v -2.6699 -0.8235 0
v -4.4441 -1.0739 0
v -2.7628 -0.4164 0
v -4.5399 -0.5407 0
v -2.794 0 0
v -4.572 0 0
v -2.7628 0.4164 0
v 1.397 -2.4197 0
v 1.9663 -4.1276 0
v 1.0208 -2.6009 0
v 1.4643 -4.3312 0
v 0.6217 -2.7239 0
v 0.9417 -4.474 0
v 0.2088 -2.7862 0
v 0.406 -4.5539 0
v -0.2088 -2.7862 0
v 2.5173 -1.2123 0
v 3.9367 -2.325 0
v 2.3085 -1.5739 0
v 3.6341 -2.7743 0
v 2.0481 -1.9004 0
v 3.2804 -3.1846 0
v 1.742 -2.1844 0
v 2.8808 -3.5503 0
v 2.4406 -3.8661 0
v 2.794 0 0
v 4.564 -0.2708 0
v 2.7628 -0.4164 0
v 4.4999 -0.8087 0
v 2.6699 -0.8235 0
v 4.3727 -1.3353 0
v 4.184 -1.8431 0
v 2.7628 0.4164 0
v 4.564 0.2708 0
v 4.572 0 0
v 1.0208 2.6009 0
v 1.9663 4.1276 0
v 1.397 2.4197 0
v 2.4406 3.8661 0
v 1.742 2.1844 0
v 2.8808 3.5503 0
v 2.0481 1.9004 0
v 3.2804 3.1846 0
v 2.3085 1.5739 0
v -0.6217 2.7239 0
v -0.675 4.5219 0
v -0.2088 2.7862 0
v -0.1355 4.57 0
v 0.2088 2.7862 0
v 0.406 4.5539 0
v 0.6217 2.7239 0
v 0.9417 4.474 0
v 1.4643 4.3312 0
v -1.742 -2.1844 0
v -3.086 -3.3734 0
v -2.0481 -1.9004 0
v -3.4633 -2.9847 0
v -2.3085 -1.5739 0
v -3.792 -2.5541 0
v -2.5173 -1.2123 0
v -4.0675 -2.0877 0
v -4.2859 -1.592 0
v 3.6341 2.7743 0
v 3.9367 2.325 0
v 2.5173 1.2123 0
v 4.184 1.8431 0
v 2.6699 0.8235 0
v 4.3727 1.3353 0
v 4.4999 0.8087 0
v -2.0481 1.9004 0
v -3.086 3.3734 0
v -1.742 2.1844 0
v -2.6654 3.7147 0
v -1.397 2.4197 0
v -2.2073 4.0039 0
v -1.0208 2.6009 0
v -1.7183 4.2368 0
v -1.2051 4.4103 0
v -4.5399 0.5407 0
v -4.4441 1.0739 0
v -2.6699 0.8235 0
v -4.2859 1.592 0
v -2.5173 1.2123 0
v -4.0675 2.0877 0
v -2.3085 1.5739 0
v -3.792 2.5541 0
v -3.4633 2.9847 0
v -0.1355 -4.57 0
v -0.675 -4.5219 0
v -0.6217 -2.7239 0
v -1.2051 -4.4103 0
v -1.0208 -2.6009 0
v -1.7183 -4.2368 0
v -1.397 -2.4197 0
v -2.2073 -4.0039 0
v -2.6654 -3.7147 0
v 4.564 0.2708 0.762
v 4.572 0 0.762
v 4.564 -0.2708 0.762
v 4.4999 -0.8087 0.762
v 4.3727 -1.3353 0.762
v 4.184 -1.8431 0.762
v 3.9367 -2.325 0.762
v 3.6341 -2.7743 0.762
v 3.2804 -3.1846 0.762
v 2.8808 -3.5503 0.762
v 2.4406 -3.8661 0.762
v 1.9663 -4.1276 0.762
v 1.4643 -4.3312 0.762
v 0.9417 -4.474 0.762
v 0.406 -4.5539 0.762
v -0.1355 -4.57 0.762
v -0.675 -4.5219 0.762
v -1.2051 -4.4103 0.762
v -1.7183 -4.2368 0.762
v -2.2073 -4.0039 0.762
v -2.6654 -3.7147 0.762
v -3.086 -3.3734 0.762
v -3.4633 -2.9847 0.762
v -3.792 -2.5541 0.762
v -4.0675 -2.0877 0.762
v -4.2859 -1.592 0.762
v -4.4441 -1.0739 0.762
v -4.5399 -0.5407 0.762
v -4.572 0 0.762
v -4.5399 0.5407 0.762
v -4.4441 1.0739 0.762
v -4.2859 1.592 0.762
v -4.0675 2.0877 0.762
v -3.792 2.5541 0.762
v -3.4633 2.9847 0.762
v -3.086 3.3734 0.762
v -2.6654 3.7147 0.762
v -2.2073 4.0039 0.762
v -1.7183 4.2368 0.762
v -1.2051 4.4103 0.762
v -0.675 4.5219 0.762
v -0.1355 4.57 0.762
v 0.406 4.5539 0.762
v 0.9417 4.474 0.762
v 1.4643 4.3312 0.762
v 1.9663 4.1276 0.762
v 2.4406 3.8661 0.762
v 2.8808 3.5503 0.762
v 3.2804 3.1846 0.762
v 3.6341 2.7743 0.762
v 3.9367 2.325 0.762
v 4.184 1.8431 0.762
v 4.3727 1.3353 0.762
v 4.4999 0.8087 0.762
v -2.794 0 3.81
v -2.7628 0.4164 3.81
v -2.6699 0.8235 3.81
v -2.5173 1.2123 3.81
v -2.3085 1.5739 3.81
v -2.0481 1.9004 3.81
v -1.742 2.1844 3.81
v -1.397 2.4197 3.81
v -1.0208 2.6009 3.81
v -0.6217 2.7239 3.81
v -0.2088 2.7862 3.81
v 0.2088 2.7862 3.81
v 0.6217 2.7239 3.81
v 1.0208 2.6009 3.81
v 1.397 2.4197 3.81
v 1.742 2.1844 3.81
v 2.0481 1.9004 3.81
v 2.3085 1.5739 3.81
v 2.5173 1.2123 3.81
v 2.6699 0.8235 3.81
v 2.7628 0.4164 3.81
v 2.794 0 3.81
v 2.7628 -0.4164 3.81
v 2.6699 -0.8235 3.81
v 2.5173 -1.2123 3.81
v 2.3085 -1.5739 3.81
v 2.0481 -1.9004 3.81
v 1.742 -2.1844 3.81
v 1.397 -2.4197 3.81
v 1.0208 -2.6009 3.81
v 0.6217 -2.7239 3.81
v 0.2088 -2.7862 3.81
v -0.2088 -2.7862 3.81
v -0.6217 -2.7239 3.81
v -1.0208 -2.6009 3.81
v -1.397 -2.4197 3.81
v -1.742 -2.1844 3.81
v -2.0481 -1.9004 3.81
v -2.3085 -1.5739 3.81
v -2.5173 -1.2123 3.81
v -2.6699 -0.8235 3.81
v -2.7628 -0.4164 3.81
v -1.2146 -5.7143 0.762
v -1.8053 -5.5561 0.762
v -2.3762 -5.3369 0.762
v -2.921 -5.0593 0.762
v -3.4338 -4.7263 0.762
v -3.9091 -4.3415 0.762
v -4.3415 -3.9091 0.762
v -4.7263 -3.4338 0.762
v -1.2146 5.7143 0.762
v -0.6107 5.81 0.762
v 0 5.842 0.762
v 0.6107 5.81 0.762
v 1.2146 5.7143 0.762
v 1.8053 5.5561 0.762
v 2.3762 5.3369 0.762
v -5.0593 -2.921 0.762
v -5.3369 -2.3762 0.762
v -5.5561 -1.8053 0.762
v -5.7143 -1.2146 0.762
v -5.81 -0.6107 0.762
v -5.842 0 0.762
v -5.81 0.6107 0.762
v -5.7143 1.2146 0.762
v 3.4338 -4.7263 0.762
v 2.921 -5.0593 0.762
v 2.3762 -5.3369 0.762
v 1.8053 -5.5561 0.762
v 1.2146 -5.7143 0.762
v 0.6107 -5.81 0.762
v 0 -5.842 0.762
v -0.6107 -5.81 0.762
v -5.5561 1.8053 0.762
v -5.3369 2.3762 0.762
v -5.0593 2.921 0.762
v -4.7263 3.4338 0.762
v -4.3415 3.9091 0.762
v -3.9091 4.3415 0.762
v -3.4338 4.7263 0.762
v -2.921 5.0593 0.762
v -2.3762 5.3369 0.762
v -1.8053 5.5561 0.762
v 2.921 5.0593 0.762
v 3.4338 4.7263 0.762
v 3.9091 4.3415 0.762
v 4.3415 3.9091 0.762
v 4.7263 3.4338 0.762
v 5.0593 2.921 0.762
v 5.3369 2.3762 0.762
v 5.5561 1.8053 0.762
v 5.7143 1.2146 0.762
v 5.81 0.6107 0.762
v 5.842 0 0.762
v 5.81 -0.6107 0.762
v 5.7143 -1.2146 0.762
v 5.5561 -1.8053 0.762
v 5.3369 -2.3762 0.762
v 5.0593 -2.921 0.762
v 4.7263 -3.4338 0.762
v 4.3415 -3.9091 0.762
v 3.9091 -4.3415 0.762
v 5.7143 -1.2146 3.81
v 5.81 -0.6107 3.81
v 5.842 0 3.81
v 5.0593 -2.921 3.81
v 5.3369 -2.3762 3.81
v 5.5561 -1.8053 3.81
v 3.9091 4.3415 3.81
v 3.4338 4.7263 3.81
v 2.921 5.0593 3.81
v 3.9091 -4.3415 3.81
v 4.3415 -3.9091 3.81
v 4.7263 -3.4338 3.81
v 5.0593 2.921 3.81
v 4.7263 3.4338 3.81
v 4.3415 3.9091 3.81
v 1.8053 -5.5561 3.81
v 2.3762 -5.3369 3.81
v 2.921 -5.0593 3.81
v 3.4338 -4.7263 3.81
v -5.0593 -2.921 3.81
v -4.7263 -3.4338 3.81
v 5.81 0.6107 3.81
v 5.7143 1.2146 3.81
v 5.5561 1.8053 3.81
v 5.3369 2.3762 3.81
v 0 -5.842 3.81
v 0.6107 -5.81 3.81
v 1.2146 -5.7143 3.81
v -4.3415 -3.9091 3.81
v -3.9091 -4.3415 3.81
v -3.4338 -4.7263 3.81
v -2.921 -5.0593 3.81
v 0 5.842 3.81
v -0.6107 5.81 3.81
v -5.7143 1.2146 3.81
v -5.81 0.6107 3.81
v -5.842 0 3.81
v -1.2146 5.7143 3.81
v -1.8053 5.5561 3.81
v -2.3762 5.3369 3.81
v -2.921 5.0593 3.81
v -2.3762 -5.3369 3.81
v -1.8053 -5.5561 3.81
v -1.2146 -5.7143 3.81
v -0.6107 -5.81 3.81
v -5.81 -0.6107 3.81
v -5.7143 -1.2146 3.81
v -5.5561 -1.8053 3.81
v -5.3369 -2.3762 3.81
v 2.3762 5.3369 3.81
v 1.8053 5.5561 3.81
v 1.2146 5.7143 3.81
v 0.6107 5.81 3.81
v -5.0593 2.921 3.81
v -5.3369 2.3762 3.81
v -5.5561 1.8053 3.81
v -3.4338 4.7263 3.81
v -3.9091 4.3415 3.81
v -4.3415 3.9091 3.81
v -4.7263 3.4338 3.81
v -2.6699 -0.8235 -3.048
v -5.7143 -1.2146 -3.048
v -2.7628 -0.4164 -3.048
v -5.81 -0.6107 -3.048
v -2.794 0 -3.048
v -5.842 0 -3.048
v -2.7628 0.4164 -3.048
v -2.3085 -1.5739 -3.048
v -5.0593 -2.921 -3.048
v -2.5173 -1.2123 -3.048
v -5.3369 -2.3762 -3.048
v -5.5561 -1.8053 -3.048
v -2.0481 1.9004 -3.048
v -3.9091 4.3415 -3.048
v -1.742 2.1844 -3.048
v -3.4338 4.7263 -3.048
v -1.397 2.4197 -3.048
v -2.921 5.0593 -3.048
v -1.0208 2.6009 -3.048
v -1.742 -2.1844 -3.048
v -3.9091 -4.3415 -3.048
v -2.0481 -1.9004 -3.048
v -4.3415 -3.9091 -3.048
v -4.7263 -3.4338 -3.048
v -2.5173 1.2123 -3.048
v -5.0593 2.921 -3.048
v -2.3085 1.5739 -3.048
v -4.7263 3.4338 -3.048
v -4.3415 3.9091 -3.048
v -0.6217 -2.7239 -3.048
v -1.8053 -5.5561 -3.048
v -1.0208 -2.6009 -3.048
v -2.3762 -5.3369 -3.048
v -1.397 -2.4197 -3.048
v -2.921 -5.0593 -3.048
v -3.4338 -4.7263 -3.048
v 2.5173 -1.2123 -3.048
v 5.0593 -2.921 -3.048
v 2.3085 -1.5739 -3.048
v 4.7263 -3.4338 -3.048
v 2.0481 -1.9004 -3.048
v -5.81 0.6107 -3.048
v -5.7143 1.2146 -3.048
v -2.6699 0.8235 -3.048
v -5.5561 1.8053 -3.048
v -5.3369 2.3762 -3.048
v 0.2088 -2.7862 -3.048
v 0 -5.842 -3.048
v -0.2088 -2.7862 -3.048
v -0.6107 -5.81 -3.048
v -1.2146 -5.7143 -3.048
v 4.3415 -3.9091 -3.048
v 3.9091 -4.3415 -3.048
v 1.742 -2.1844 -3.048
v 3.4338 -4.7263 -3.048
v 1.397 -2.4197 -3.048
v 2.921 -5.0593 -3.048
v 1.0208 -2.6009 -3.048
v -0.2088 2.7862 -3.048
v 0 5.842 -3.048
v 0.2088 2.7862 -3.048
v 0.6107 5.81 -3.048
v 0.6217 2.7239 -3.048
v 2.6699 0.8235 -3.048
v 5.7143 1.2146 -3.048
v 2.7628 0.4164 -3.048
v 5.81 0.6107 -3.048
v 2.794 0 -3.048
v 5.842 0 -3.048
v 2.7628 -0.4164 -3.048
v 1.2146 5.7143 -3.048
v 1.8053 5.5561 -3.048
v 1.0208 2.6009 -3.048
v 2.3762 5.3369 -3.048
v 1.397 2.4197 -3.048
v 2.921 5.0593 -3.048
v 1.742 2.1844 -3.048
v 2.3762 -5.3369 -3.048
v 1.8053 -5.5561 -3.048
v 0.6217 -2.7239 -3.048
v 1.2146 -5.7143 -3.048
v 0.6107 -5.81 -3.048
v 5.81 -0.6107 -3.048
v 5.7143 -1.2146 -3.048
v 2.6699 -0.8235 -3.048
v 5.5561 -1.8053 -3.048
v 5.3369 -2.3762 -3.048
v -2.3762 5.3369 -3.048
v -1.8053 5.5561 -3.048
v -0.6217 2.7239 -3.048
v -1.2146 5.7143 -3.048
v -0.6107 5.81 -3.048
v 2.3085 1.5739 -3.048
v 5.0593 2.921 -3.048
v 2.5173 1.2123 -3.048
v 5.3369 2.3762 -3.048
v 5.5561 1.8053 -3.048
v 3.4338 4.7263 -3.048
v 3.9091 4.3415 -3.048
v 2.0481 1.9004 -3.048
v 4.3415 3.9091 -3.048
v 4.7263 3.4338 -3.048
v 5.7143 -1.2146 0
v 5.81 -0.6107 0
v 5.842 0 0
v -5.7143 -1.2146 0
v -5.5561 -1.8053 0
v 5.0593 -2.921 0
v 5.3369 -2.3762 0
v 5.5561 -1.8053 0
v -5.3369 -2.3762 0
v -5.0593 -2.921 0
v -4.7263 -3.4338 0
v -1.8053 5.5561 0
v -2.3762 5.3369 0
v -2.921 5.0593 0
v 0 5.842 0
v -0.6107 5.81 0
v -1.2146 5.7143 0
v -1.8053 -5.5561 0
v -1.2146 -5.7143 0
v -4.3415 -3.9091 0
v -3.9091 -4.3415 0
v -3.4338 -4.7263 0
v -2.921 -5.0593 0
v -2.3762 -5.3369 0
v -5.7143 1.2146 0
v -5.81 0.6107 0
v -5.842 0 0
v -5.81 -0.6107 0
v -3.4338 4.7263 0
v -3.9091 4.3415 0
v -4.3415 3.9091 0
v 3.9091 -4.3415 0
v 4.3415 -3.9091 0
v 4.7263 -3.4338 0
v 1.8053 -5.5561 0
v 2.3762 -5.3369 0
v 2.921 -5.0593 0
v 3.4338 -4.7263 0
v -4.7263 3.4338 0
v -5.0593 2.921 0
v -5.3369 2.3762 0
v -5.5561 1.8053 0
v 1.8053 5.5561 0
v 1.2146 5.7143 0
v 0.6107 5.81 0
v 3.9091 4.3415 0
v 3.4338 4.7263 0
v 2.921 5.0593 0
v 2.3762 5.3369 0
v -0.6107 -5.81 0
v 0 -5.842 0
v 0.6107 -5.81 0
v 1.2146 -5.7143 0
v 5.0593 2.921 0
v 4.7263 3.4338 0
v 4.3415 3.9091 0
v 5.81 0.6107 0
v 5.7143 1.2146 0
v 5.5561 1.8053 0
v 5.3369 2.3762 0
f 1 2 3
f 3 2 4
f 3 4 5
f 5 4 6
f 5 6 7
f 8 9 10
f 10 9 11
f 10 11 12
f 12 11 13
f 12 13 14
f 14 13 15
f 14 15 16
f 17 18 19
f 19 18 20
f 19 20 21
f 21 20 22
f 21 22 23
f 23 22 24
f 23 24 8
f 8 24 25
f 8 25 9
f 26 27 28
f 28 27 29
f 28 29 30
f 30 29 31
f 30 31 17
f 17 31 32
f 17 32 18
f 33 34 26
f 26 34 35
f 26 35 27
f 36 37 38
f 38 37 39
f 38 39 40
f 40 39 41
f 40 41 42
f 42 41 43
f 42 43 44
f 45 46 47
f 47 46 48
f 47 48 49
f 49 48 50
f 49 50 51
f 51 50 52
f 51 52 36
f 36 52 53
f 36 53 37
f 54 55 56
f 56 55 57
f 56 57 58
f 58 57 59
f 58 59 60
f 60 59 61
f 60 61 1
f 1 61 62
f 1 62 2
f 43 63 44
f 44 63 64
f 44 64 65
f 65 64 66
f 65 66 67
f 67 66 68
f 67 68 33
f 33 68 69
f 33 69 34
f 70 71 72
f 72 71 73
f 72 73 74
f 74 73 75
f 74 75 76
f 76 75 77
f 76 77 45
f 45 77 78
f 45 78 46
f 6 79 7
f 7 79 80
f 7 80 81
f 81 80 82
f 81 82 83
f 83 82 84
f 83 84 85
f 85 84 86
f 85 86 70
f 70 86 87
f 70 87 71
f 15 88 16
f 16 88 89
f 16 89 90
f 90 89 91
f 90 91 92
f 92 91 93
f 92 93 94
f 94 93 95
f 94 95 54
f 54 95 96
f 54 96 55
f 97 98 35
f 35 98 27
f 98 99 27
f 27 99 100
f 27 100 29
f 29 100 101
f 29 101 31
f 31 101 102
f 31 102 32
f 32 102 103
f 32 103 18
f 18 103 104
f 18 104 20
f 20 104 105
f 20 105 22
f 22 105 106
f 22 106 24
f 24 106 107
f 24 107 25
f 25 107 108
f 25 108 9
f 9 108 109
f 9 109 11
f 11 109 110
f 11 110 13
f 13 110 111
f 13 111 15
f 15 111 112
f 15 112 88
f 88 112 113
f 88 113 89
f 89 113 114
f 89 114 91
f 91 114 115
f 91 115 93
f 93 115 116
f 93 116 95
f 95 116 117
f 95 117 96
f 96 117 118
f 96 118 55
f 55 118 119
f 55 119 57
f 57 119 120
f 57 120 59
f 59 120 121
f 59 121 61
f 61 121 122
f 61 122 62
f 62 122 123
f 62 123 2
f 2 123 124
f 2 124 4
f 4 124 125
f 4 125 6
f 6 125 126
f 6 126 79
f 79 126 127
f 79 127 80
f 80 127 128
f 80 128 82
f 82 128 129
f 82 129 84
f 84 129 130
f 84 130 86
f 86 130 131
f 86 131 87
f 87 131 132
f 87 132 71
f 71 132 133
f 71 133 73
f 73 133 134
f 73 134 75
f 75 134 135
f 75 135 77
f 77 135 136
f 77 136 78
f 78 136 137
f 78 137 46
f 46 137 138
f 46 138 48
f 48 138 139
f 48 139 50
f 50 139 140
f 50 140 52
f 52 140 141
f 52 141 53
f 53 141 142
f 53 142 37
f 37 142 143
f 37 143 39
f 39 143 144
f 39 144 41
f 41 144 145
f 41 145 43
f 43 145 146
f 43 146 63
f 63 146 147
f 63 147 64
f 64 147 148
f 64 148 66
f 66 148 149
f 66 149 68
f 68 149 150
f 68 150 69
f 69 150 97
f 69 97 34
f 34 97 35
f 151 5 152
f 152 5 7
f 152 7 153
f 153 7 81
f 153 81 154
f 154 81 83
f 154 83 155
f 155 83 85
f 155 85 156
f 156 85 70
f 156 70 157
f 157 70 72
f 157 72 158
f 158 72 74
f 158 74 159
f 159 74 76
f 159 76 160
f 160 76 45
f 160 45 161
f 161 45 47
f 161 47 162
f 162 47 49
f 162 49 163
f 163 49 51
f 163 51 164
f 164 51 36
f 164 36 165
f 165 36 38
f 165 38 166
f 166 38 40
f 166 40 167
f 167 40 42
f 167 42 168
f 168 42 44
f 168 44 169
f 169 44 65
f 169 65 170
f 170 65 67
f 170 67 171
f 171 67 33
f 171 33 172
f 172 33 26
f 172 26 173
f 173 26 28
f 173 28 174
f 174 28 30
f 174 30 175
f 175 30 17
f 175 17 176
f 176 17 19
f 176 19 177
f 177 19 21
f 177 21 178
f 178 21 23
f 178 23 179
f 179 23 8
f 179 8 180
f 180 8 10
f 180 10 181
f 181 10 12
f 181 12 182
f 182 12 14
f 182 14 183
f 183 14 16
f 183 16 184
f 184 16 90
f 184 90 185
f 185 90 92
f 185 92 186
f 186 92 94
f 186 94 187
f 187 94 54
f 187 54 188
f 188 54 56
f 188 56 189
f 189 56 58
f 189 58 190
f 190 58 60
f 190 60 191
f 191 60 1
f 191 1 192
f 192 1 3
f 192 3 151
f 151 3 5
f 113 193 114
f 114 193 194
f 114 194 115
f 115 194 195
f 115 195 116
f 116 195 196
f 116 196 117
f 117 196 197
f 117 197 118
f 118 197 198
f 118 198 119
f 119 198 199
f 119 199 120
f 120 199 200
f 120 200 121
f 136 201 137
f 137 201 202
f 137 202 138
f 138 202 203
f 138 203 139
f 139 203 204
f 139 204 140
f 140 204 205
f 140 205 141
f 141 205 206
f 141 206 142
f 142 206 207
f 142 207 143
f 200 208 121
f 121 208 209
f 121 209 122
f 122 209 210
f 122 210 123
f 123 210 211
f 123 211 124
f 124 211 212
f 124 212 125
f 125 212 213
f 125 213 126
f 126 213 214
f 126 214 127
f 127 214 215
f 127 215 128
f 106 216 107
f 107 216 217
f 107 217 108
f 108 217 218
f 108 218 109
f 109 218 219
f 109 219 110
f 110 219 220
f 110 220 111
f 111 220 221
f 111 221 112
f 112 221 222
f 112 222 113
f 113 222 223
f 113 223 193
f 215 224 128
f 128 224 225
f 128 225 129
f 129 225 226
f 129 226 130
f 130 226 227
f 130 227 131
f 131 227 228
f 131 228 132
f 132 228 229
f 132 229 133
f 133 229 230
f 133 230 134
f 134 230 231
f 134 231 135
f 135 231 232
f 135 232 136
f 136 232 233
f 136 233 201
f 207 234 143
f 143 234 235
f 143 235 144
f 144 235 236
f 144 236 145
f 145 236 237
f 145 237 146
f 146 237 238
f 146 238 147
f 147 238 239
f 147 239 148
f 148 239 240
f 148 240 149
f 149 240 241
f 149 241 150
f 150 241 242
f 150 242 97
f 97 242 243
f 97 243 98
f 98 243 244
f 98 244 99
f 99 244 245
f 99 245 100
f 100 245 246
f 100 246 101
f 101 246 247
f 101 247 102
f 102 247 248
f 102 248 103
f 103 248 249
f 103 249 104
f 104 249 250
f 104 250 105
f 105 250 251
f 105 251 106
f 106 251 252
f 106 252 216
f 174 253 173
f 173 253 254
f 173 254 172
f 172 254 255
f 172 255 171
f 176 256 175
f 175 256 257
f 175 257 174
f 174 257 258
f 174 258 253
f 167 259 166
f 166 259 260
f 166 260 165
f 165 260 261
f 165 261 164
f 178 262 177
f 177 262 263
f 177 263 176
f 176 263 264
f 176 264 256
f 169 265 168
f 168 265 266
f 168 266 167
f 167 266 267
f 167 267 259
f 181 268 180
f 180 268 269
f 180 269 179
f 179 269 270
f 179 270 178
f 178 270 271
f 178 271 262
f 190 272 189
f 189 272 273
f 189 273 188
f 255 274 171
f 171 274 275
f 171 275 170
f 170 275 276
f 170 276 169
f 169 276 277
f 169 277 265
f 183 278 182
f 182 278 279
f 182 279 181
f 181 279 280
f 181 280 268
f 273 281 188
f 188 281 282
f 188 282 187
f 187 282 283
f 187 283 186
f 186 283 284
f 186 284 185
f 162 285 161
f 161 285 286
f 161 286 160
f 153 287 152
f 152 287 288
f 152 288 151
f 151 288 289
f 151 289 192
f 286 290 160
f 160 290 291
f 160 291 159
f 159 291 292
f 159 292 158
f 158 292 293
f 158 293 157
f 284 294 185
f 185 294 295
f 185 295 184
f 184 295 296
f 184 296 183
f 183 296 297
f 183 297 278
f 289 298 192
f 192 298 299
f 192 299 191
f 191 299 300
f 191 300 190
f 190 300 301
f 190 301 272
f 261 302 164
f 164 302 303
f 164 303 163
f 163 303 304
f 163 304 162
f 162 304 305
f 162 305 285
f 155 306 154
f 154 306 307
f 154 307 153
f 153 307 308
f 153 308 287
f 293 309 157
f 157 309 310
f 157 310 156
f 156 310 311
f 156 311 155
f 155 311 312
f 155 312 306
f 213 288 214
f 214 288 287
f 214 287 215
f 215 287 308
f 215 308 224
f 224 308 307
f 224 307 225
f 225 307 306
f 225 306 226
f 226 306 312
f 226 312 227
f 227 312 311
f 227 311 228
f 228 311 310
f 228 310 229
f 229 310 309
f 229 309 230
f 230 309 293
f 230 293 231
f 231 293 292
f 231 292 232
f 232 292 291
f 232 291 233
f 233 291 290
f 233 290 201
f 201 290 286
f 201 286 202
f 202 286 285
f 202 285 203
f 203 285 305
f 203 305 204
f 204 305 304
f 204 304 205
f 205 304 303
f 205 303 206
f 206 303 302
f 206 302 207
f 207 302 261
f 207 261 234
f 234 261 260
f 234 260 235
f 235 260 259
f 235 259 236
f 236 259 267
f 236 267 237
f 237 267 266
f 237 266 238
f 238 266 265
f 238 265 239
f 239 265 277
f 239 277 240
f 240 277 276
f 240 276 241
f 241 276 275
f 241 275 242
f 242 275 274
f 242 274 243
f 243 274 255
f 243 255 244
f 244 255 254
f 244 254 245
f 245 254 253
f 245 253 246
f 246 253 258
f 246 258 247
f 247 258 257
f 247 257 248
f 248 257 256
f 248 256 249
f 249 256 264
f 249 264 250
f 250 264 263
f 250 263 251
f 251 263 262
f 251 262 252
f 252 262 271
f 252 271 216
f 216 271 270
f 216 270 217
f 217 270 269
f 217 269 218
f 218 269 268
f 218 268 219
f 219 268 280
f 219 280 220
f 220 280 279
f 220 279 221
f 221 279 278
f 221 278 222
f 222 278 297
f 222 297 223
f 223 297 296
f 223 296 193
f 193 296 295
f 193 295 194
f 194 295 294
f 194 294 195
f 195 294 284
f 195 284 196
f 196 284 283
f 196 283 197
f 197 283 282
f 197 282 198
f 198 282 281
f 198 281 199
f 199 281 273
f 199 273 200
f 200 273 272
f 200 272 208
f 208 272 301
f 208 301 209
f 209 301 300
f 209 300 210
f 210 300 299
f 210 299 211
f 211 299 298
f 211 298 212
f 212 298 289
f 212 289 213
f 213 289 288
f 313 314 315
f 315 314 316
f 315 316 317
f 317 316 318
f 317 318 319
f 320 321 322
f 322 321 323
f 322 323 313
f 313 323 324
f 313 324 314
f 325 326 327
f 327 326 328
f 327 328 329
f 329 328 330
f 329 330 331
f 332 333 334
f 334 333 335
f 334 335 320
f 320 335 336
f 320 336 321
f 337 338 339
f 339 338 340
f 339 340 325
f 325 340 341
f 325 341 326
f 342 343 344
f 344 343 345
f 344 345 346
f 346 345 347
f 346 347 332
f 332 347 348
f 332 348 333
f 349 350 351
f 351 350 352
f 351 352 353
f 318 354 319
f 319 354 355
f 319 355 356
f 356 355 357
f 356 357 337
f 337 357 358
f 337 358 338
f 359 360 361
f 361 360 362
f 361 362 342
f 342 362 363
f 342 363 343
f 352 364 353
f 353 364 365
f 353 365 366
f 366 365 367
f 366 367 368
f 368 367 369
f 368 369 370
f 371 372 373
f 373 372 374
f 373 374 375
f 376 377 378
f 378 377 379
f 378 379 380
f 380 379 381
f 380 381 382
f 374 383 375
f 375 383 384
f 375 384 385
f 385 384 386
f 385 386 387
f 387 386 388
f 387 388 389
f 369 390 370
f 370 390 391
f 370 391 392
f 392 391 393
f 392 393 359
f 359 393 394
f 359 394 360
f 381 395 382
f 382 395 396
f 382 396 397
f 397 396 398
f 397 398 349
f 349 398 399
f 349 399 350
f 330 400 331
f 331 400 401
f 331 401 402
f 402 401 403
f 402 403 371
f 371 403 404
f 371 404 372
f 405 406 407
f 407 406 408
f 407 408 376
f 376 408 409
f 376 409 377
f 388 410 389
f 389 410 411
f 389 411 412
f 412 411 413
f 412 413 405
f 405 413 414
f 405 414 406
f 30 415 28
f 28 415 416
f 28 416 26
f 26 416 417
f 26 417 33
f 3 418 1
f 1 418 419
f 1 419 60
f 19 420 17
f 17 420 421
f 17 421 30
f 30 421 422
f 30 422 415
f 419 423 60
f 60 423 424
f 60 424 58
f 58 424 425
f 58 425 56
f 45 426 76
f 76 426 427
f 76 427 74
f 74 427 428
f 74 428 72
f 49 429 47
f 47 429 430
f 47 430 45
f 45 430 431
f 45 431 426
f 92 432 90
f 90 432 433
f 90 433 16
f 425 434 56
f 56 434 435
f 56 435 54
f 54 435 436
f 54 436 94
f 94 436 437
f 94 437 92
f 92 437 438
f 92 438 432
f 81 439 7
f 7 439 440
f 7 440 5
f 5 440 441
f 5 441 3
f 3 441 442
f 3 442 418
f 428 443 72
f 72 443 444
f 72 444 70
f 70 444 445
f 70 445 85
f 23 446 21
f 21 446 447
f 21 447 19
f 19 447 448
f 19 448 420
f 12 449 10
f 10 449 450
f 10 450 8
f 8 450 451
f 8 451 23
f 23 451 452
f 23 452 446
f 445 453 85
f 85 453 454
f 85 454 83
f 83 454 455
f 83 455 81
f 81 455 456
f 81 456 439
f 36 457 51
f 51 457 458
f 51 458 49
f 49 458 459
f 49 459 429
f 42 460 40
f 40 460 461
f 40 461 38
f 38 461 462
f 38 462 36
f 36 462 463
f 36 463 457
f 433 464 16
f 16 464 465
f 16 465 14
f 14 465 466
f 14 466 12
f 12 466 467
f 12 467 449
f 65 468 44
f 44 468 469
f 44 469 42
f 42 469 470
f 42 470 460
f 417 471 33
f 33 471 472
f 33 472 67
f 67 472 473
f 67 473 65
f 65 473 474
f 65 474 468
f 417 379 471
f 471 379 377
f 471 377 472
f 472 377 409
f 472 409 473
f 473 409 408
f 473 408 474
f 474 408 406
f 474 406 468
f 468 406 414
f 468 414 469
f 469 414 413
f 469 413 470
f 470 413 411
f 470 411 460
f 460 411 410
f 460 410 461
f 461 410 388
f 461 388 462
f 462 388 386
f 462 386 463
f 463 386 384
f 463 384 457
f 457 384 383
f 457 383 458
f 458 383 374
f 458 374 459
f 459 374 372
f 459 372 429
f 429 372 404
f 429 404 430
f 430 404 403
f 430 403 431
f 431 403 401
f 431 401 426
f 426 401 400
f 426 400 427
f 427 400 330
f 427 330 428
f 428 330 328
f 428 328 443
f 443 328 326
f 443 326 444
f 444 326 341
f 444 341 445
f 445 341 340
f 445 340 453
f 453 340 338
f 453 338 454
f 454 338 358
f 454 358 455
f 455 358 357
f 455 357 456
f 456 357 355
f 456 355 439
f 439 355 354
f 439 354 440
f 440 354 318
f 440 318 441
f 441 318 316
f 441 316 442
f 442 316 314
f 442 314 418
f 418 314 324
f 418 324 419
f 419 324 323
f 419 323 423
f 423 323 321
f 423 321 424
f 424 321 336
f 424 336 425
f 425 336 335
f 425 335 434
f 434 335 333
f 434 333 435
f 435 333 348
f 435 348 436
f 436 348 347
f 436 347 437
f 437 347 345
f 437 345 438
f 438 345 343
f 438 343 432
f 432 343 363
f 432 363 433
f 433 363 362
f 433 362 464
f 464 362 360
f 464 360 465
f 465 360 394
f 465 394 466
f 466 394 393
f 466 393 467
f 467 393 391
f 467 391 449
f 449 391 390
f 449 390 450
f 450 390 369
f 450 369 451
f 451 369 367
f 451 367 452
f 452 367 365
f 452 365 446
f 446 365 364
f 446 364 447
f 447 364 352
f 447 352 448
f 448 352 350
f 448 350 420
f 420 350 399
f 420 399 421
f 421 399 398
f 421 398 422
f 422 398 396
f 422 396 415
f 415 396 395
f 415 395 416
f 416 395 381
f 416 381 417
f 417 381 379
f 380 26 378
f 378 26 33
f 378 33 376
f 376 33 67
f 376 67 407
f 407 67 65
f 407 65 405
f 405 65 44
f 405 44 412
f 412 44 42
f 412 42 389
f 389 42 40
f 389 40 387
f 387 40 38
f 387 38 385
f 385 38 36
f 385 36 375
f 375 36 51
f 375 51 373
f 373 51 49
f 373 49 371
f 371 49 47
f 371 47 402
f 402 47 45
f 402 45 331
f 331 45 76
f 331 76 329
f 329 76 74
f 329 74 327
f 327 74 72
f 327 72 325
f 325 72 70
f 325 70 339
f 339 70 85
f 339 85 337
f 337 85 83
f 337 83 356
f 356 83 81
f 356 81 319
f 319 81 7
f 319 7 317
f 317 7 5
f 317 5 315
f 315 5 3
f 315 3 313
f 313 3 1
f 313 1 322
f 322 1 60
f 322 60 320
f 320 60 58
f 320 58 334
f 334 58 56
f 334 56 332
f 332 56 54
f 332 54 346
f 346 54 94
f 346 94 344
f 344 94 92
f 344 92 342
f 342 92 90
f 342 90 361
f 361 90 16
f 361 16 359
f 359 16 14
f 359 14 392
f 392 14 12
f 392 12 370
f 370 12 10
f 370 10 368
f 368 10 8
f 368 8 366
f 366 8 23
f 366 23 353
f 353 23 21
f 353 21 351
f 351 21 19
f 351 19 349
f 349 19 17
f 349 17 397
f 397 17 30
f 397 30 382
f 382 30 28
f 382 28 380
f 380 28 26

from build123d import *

# Parameters (mm, degrees)
SKETCH1_R           = 4.572
SKETCH1_R_2         = 2.794
BOSS_EXTRUDE2_DEPTH = 0.762
SKETCH3_R           = 5.842
SKETCH3_R_2         = 2.794
BOSS_EXTRUDE3_DEPTH = 3.048
SKETCH4_R           = 5.842
SKETCH4_R_2         = 2.794
BOSS_EXTRUDE4_DEPTH = 3.048


with BuildPart() as part:
    # Sketch1 → Boss-Extrude2 (new body)
    with BuildSketch(Plane.XY):
        Circle(SKETCH1_R)
        Circle(SKETCH1_R_2, mode=Mode.SUBTRACT)
    extrude(amount=BOSS_EXTRUDE2_DEPTH)

    # Sketch3 → Boss-Extrude3 (add)
    with BuildSketch(Plane.XY.offset(0.762)):
        Circle(SKETCH3_R)
        Circle(SKETCH3_R_2, mode=Mode.SUBTRACT)
    extrude(amount=BOSS_EXTRUDE3_DEPTH)


with BuildPart() as body_2:
    # Sketch4 → Boss-Extrude4 (new body)
    with BuildSketch(Plane(origin=(0, 0, 0), x_dir=(-1, 0, 0), z_dir=(0, 0, -1))):
        Circle(SKETCH4_R)
        Circle(SKETCH4_R_2, mode=Mode.SUBTRACT)
    extrude(amount=BOSS_EXTRUDE4_DEPTH)


solid = Compound([part.part, body_2.part])
